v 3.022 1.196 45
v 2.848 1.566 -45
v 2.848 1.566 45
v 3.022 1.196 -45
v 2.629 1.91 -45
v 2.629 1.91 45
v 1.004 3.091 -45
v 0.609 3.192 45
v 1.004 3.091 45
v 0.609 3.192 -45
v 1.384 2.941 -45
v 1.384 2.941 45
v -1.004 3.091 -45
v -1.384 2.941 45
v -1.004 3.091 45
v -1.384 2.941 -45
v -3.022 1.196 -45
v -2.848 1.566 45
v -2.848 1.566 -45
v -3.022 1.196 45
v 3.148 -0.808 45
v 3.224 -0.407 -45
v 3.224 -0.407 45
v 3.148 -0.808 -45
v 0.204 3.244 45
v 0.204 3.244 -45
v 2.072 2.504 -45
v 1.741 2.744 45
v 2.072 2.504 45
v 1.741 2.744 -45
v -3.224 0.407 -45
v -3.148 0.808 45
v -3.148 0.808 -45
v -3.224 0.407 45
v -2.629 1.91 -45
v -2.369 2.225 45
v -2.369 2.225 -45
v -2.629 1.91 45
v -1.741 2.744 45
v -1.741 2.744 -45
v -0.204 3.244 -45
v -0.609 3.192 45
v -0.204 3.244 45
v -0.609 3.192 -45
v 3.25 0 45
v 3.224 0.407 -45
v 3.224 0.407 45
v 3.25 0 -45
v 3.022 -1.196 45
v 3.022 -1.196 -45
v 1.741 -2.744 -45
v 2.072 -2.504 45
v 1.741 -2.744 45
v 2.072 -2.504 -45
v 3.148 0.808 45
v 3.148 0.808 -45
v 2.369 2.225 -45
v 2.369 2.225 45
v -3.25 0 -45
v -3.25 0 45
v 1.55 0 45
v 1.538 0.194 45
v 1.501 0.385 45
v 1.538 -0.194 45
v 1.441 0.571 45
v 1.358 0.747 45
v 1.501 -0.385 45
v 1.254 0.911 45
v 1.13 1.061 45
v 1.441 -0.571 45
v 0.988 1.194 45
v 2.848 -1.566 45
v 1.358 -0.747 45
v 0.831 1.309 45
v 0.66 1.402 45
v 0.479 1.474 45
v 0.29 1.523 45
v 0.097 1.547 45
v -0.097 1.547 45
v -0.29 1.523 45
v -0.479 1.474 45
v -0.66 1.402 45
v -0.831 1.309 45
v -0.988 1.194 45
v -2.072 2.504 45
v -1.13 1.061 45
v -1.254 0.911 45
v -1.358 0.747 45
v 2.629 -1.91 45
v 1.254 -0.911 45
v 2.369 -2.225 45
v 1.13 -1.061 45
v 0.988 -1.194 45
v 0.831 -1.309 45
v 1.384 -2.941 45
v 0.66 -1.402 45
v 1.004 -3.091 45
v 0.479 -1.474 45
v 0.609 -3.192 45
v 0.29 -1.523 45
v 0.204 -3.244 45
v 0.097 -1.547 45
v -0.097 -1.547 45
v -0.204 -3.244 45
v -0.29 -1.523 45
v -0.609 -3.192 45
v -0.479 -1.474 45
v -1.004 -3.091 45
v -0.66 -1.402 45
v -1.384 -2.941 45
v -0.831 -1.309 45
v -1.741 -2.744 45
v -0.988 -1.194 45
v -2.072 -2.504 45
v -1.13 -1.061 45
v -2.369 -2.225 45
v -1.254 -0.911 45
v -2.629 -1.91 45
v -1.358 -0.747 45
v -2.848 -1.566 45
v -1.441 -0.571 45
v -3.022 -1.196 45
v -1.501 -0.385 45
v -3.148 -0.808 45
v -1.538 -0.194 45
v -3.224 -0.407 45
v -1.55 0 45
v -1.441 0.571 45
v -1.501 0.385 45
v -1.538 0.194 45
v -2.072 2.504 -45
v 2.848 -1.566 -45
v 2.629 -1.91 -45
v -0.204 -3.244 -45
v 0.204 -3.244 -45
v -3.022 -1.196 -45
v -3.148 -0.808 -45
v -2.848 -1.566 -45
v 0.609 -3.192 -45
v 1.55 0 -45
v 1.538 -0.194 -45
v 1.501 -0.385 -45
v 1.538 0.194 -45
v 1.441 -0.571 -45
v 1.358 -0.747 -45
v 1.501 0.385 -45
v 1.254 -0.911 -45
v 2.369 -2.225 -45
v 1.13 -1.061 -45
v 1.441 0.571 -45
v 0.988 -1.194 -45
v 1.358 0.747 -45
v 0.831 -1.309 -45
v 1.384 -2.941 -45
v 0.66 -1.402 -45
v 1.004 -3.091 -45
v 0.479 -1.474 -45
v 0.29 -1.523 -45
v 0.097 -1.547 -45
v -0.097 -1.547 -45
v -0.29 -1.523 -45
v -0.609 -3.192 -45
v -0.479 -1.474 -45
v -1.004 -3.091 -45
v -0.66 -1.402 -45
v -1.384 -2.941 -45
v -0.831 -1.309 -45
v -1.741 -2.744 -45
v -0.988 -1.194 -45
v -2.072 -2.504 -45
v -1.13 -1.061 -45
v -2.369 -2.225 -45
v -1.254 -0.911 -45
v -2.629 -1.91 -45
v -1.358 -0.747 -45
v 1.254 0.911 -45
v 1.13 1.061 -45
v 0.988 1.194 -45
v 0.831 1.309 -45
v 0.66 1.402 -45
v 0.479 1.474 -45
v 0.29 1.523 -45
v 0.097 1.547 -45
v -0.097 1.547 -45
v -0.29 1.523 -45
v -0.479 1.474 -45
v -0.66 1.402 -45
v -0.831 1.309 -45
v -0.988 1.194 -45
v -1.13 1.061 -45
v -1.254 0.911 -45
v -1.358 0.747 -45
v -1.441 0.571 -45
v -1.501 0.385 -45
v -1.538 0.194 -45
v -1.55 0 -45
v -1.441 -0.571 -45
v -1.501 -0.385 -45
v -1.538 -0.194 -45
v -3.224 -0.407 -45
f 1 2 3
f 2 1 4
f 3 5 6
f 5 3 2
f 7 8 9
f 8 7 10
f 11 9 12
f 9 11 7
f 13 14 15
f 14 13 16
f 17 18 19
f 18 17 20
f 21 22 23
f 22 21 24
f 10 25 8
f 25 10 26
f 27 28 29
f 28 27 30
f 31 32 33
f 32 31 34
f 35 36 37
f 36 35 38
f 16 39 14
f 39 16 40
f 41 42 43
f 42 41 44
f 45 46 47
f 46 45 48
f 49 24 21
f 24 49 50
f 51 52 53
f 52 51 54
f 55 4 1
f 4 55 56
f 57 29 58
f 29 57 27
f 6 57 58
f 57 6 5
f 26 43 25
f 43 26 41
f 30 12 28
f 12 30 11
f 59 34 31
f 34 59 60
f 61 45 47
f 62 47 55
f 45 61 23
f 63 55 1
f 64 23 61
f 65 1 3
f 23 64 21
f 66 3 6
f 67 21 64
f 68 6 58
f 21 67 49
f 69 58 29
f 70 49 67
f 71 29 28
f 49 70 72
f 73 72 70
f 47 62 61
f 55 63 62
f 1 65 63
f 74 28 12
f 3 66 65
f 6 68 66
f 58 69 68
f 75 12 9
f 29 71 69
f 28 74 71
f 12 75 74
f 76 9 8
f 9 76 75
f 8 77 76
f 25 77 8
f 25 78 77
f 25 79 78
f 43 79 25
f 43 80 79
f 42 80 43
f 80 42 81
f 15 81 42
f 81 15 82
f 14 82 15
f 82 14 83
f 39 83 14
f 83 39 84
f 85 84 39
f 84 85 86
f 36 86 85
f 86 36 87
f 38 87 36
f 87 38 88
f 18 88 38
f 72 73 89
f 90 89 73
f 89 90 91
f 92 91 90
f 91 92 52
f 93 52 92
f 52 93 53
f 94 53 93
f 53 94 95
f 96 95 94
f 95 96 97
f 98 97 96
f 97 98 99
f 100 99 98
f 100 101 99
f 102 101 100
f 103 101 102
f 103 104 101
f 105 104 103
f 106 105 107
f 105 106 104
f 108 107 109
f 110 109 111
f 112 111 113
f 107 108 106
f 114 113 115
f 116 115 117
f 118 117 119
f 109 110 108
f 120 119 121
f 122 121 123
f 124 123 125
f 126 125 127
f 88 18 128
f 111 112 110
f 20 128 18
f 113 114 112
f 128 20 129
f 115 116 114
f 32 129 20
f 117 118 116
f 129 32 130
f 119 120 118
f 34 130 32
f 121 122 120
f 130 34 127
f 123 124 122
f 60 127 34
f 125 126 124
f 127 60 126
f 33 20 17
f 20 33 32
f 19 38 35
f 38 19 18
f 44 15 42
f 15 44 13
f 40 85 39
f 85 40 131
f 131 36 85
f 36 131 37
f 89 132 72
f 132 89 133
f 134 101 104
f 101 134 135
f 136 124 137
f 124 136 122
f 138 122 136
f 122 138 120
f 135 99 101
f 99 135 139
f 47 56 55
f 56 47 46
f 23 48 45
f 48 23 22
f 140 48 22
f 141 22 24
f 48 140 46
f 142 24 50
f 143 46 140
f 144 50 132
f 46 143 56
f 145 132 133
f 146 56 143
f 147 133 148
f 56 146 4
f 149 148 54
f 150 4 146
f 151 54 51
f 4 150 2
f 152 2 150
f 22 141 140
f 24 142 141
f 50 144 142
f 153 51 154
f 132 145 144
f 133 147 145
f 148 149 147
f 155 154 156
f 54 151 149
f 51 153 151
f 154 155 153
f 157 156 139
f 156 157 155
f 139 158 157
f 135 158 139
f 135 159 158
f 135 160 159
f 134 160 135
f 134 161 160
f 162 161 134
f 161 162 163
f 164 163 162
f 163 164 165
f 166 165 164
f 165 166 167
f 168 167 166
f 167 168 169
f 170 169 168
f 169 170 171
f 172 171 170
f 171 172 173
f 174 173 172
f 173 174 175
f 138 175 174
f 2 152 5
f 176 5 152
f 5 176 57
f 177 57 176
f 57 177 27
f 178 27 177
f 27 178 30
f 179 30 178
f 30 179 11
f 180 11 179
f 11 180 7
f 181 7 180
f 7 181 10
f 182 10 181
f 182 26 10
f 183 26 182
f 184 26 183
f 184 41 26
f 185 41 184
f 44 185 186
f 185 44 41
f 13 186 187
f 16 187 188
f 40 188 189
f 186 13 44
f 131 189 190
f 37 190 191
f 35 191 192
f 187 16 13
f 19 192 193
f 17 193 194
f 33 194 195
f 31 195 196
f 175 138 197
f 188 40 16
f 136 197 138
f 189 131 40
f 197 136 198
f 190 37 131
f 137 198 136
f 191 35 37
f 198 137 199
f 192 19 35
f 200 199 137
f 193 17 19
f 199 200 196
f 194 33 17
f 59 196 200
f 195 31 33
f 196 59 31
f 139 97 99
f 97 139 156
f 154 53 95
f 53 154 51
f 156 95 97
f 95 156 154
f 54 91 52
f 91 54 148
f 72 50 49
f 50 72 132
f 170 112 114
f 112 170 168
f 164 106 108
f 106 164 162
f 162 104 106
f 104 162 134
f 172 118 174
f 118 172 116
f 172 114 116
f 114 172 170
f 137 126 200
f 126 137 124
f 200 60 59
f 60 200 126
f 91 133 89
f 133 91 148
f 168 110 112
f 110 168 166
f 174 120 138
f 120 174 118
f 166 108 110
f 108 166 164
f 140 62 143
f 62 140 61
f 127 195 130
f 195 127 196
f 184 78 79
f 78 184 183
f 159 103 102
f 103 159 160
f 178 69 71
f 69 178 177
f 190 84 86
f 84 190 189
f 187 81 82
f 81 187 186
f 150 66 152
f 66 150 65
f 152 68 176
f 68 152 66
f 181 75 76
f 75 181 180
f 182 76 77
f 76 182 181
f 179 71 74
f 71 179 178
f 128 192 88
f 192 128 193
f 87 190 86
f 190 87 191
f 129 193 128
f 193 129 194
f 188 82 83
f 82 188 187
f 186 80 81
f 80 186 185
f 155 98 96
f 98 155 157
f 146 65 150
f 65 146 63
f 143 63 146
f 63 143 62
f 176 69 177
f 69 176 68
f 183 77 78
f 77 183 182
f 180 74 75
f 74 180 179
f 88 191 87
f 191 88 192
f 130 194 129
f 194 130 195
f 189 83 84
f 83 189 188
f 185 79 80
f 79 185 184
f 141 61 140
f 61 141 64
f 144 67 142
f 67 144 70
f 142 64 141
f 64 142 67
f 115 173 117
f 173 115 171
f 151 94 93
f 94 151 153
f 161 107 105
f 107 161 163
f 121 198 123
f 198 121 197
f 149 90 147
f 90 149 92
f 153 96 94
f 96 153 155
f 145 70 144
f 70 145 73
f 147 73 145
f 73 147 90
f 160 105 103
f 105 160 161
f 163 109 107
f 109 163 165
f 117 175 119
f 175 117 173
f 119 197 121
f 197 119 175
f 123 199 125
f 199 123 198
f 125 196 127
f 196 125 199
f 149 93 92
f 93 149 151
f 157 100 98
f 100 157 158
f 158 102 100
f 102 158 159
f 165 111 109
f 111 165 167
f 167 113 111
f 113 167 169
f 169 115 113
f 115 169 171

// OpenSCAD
$fn = 50;


difference() {
	union() {
		translate(v = [0, 0, -45.0000000000]) {
			cylinder(h = 90, r = 3.2500000000);
		}
	}
	union() {
		translate(v = [0, 0, -100.0000000000]) {
			cylinder(h = 200, r = 1.5500000000);
		}
	}
}
